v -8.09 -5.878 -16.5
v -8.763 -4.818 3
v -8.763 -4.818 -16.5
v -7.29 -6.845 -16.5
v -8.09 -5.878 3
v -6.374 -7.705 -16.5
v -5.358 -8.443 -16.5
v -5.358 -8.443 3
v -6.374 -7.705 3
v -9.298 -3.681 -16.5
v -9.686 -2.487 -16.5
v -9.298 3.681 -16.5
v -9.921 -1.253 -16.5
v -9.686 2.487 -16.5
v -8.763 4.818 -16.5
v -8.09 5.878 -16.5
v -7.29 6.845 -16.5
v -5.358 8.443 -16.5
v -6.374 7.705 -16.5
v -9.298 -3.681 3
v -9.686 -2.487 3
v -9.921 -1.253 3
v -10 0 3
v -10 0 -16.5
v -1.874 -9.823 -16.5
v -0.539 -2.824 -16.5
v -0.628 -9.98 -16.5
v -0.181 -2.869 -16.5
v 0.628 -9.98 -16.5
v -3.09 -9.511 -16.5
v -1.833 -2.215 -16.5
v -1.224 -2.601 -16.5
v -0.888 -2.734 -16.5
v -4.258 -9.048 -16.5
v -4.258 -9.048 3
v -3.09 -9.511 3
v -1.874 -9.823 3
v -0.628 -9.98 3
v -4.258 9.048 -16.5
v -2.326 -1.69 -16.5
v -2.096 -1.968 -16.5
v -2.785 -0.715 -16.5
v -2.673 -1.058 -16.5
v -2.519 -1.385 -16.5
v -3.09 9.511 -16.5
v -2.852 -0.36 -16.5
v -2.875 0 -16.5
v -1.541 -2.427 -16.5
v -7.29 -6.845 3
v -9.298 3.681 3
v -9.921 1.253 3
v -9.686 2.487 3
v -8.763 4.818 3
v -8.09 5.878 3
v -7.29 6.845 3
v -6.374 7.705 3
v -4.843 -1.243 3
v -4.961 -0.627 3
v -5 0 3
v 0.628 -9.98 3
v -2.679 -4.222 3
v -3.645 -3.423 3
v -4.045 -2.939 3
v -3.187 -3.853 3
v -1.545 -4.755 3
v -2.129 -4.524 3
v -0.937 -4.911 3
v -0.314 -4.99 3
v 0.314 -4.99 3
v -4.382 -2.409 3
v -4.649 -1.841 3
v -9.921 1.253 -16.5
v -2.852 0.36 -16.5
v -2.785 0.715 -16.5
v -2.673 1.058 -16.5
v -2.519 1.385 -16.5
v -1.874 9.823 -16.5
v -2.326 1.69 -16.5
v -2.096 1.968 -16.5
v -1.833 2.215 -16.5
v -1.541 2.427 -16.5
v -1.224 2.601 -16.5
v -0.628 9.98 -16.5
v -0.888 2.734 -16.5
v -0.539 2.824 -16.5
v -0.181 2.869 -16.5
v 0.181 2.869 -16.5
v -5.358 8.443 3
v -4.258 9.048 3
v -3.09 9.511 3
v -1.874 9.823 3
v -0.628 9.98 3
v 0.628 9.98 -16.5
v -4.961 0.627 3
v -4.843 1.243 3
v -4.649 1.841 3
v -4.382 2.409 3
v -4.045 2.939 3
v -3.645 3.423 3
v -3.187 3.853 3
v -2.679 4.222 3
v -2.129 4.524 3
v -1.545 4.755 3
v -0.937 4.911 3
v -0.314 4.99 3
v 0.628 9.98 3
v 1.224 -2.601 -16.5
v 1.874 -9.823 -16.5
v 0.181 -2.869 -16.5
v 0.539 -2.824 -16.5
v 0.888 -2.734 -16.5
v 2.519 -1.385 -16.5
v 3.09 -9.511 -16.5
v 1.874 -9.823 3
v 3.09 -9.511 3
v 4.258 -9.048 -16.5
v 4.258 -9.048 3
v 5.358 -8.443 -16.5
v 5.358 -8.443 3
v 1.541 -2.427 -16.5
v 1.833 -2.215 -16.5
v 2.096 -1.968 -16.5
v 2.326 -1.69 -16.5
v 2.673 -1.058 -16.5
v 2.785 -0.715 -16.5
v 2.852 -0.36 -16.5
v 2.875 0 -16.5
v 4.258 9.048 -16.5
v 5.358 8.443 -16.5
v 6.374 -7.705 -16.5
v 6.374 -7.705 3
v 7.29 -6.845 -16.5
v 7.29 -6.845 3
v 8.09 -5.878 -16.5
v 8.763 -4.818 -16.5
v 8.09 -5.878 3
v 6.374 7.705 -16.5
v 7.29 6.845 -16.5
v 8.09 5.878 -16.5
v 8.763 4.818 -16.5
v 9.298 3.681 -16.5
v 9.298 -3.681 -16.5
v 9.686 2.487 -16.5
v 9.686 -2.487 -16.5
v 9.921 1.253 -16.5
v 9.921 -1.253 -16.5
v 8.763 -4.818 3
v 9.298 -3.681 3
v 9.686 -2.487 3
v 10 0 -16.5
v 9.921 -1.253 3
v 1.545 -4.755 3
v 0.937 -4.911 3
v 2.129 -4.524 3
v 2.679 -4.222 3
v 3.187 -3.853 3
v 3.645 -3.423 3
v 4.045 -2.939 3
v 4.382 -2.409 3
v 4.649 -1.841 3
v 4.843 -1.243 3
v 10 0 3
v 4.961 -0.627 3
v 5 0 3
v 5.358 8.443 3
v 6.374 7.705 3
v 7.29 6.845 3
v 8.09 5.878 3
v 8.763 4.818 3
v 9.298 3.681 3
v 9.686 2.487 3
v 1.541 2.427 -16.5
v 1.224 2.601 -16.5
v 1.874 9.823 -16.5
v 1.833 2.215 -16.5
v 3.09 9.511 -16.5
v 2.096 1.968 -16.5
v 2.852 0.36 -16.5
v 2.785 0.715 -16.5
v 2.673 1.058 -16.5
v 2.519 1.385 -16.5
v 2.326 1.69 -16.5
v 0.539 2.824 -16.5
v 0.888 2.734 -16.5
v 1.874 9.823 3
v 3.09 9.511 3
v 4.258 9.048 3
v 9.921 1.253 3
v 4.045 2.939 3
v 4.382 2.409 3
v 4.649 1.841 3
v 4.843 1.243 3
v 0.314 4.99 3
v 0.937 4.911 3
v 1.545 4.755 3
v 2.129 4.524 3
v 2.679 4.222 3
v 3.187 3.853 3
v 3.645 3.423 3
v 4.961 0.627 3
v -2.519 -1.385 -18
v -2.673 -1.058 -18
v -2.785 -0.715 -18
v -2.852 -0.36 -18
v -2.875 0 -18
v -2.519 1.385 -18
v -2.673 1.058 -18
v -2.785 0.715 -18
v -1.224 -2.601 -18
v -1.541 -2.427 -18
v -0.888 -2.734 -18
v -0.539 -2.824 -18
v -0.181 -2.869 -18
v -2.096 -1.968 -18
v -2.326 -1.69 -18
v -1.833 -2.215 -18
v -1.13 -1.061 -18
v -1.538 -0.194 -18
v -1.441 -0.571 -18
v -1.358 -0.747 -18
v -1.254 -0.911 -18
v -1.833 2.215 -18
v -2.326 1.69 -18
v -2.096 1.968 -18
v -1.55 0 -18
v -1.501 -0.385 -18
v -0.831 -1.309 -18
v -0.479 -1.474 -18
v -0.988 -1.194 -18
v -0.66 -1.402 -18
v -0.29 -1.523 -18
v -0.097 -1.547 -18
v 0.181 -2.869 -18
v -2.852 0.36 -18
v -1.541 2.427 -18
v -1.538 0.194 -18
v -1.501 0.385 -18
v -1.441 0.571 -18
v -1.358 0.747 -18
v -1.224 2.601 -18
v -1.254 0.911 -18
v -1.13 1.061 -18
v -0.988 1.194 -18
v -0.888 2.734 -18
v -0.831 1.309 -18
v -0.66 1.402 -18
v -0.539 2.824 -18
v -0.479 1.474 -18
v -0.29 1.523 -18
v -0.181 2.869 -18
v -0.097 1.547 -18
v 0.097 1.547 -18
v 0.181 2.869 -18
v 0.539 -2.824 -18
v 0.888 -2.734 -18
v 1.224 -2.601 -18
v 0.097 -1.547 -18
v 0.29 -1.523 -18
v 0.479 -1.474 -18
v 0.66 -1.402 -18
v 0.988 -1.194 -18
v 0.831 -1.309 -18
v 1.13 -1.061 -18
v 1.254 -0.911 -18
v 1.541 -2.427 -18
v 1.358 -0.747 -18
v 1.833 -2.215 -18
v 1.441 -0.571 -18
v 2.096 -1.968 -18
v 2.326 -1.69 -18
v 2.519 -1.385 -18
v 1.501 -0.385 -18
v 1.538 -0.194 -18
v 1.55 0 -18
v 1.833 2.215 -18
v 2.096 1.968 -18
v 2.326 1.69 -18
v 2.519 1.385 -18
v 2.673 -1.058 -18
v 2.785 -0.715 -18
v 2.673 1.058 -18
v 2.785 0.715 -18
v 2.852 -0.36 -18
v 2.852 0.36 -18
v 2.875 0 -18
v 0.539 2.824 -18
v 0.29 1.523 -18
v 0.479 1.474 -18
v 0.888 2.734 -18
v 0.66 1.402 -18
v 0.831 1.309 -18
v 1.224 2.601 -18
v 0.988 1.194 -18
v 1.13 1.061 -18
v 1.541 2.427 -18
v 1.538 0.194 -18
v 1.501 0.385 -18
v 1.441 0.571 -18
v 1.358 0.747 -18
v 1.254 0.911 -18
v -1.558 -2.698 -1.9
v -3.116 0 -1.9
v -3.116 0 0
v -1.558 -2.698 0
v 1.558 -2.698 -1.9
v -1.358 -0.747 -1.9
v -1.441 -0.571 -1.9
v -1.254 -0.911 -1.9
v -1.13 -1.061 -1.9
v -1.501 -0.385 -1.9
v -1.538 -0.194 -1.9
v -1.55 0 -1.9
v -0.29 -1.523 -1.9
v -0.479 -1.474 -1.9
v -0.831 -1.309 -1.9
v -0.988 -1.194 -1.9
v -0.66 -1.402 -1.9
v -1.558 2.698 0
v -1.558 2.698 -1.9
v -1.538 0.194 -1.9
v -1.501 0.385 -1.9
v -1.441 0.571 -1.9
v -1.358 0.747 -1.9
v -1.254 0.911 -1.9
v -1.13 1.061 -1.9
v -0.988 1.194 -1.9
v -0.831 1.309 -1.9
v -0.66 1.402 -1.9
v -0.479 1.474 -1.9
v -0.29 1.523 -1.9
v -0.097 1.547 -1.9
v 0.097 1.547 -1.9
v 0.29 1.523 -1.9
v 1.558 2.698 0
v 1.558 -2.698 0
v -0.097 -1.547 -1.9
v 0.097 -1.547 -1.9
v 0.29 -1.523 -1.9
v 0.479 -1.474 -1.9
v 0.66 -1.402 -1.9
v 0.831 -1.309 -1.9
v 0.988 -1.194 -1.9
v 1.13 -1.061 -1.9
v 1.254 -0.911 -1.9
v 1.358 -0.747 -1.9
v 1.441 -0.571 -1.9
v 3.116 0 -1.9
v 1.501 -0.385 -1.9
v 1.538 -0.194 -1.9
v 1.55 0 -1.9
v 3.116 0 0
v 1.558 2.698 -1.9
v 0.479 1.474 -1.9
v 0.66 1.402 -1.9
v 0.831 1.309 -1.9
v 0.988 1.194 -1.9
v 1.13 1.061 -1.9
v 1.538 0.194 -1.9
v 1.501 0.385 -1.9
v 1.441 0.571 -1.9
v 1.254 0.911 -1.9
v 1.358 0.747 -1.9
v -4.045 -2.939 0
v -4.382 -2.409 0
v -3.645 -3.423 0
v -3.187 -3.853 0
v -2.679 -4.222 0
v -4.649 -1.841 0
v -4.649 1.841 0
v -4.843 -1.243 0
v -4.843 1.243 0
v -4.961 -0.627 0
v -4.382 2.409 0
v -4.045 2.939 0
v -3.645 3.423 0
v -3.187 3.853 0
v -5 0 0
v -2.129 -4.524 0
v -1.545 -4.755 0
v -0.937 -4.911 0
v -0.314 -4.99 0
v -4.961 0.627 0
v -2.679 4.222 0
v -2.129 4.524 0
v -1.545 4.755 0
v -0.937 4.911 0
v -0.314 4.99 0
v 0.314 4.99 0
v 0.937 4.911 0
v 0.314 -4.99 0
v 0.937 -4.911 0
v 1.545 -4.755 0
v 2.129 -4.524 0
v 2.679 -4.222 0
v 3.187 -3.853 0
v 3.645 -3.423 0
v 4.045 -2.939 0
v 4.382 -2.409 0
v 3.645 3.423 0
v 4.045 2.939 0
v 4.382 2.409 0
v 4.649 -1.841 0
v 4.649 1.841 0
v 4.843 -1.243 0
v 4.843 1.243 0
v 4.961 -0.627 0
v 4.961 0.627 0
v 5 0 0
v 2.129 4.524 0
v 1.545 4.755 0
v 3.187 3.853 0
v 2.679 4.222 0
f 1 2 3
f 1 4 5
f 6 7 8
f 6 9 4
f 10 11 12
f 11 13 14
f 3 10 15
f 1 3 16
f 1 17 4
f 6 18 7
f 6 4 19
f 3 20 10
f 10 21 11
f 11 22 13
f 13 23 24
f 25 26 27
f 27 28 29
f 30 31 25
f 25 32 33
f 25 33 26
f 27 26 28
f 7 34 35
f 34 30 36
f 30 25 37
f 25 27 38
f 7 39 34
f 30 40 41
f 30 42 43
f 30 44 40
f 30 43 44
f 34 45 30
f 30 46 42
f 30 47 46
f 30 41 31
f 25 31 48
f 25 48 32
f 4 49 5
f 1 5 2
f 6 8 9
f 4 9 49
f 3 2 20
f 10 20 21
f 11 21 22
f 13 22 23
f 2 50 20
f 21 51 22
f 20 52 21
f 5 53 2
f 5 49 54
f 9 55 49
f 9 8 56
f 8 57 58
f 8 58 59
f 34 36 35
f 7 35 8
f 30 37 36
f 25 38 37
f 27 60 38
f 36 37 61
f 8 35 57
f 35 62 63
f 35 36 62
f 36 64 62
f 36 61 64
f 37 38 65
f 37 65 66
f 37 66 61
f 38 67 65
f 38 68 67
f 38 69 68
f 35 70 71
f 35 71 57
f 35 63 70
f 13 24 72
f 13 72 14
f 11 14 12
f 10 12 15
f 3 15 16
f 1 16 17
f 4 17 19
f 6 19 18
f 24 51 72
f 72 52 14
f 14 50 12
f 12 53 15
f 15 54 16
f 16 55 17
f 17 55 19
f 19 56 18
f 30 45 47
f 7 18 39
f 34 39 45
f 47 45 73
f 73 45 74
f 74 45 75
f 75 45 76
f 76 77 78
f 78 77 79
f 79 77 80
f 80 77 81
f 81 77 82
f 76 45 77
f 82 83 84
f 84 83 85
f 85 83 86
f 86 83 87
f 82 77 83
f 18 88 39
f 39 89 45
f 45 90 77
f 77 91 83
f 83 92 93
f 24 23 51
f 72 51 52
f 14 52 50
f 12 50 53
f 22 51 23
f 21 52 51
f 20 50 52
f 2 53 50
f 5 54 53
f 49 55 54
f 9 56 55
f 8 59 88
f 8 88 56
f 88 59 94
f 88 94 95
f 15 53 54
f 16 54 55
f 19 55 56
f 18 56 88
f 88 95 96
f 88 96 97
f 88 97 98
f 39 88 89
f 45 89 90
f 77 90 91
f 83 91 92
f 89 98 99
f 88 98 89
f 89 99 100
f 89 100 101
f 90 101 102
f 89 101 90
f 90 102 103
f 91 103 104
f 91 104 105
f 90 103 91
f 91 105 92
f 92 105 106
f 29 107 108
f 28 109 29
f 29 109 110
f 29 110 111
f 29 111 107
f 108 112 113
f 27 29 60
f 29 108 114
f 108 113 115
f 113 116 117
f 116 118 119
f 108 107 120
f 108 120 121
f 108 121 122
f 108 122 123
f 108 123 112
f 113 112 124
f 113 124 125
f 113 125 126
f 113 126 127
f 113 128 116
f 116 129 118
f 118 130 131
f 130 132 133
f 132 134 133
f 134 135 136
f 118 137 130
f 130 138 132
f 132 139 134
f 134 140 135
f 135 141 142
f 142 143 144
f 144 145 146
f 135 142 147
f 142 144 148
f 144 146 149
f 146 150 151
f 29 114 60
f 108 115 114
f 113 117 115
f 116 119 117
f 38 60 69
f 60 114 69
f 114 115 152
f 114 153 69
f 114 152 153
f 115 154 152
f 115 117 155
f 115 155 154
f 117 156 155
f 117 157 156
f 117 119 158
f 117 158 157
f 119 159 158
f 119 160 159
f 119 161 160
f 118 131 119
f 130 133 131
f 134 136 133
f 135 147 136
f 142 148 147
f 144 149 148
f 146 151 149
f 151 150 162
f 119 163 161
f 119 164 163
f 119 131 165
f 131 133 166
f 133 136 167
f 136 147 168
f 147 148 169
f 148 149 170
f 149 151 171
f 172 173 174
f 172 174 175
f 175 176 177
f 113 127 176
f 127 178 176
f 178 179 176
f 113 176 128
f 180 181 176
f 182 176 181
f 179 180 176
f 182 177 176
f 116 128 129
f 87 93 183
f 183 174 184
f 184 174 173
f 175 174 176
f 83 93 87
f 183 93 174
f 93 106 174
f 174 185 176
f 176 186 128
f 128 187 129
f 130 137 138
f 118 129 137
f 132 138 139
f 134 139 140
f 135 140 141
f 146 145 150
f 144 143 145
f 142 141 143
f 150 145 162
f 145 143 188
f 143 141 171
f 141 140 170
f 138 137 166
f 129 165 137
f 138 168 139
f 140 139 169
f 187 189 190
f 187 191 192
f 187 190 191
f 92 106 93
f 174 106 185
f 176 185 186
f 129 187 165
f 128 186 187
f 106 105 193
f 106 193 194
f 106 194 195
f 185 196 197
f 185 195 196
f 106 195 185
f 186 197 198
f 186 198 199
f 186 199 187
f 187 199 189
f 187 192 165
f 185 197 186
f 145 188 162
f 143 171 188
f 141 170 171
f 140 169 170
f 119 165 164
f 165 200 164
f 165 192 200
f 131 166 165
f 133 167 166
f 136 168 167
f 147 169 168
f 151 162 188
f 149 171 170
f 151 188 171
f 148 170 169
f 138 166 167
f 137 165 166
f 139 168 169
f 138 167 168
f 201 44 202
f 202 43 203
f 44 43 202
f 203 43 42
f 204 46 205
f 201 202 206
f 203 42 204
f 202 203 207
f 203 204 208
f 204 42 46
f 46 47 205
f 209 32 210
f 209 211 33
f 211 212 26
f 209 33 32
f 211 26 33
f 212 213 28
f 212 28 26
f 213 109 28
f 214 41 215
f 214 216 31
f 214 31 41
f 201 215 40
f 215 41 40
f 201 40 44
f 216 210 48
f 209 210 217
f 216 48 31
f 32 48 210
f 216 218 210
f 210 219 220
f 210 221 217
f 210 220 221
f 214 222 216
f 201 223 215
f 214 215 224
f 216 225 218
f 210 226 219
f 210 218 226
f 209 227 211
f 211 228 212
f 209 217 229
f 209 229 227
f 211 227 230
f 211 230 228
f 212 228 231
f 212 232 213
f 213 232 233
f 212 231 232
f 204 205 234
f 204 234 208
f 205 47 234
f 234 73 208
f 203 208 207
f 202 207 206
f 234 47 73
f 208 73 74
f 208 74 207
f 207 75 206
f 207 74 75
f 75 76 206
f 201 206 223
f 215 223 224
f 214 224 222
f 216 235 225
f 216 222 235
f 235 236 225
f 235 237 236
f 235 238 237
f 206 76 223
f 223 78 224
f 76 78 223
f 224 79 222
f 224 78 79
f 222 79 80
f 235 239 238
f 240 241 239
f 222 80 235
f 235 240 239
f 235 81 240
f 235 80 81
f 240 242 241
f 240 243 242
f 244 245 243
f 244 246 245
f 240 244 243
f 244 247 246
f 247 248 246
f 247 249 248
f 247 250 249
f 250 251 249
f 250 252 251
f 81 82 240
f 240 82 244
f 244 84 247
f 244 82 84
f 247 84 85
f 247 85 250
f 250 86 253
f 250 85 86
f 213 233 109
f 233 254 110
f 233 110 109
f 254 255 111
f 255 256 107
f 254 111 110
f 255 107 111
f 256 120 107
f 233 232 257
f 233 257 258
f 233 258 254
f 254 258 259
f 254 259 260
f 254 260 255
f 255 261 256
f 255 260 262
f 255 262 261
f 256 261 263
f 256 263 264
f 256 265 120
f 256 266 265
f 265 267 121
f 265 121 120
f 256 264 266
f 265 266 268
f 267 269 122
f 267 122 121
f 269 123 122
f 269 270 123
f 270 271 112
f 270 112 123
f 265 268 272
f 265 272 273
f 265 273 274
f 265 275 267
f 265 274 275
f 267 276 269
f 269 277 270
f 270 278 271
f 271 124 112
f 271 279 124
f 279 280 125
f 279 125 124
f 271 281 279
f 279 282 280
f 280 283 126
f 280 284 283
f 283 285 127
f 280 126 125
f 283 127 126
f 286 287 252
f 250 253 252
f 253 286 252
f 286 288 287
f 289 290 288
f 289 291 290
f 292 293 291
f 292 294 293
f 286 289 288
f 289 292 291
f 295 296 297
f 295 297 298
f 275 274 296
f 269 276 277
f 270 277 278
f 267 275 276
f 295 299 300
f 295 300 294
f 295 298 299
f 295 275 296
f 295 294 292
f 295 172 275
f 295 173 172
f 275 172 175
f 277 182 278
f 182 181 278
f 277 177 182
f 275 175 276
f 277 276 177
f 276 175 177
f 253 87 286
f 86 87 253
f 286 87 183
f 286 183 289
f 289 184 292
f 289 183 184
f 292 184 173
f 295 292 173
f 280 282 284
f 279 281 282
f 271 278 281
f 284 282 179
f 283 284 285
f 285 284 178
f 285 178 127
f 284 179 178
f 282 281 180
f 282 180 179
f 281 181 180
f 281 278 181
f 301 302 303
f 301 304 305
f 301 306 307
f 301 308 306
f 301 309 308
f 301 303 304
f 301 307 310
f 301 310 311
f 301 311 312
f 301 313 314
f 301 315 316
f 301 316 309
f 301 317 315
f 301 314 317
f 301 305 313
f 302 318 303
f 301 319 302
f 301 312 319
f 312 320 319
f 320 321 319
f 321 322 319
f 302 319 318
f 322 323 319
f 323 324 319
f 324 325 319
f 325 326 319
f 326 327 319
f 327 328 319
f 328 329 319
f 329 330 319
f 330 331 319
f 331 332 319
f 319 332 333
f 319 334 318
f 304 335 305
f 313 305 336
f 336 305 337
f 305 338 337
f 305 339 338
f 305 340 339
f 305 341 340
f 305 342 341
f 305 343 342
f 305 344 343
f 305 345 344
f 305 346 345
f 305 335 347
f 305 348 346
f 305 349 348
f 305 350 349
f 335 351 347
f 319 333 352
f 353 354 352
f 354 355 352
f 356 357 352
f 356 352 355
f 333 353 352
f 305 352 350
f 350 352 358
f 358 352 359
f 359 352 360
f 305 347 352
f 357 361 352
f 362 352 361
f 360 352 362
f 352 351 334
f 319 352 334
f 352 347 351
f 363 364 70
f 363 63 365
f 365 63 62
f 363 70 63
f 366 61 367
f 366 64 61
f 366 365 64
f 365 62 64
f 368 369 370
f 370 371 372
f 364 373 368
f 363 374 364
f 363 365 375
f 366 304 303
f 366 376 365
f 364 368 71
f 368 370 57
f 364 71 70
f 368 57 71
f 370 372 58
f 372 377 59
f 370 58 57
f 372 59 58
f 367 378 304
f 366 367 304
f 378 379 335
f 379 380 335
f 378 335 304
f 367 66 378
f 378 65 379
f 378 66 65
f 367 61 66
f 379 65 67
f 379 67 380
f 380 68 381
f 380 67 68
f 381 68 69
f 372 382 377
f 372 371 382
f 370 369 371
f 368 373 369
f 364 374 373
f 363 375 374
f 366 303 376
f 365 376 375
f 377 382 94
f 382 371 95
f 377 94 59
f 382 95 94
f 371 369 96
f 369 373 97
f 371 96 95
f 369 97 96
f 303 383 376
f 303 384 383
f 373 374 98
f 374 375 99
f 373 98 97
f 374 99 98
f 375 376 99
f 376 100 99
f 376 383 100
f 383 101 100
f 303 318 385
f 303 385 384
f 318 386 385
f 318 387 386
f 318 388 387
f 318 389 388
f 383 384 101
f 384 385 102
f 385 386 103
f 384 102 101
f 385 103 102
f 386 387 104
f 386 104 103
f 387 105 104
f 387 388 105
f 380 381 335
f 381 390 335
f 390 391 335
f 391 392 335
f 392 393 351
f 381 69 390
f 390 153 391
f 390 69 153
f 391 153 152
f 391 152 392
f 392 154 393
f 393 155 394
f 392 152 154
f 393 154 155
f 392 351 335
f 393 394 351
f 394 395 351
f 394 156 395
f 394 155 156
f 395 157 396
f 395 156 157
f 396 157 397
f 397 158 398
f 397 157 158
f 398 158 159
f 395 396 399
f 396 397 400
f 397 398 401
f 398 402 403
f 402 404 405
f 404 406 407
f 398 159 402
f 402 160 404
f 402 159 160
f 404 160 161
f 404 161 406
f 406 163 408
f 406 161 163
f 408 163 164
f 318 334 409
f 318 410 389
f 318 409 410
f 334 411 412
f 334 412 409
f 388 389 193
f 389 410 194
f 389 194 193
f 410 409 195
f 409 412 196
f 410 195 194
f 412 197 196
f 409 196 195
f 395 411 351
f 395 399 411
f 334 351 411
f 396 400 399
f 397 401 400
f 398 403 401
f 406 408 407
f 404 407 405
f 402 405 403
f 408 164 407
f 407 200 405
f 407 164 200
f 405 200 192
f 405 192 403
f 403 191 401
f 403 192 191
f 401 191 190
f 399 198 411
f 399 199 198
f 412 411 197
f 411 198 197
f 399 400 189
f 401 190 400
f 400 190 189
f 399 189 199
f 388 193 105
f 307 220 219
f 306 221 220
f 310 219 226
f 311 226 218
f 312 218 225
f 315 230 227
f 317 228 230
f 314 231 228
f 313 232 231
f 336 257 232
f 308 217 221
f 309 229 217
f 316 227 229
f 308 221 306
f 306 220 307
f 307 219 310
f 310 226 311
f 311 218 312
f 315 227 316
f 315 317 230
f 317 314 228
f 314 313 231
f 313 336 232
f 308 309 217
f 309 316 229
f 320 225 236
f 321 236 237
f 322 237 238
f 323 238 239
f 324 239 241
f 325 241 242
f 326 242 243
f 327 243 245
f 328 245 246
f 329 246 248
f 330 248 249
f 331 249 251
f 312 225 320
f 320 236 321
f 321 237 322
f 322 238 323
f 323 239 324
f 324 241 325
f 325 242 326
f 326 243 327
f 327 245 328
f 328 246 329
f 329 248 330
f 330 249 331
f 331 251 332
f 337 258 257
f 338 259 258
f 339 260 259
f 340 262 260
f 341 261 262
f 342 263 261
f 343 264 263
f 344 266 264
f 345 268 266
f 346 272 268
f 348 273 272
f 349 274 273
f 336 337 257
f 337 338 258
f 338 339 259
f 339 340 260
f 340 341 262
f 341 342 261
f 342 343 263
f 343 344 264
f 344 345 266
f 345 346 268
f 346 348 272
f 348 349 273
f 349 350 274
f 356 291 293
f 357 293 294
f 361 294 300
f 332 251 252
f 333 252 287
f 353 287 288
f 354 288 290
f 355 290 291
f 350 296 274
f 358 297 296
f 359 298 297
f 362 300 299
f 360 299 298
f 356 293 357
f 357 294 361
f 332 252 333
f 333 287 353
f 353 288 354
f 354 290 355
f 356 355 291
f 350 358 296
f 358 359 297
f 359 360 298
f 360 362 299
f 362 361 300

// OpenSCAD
$fn = 50;

difference() {
	union() {
		translate(v = [0, 0, -16.5]) {
			cylinder(h = 19.5, r = 10.0);
		}
		#translate(v = [0, 0, -18.0]) {
			cylinder(h = 18, r = 2.875);
		}
	}
	union() {
		translate(v = [0, 0, 0]) {
			rotate(a = [0, 0, 0]) {
				difference() {
					union() {
						translate(v = [0, 0, -1.9]) {
							linear_extrude(height = 1.9) {
								polygon(points = [[3.1158, 0.0], [1.5579000000000005, 2.698361953111554], [-1.5578999999999994, 2.6983619531115544], [-3.1158, 3.815754496783323e-16], [-1.5579000000000014, -2.6983619531115535], [1.557899999999998, -2.6983619531115552]]);
							}
						}
					}
					union();
				}
			}
		}
		#cylinder(h = 3, r = 5.0);
		#translate(v = [0, 0, -100.0]) {
			cylinder(h = 200, r = 1.55);
		}
	}
}
